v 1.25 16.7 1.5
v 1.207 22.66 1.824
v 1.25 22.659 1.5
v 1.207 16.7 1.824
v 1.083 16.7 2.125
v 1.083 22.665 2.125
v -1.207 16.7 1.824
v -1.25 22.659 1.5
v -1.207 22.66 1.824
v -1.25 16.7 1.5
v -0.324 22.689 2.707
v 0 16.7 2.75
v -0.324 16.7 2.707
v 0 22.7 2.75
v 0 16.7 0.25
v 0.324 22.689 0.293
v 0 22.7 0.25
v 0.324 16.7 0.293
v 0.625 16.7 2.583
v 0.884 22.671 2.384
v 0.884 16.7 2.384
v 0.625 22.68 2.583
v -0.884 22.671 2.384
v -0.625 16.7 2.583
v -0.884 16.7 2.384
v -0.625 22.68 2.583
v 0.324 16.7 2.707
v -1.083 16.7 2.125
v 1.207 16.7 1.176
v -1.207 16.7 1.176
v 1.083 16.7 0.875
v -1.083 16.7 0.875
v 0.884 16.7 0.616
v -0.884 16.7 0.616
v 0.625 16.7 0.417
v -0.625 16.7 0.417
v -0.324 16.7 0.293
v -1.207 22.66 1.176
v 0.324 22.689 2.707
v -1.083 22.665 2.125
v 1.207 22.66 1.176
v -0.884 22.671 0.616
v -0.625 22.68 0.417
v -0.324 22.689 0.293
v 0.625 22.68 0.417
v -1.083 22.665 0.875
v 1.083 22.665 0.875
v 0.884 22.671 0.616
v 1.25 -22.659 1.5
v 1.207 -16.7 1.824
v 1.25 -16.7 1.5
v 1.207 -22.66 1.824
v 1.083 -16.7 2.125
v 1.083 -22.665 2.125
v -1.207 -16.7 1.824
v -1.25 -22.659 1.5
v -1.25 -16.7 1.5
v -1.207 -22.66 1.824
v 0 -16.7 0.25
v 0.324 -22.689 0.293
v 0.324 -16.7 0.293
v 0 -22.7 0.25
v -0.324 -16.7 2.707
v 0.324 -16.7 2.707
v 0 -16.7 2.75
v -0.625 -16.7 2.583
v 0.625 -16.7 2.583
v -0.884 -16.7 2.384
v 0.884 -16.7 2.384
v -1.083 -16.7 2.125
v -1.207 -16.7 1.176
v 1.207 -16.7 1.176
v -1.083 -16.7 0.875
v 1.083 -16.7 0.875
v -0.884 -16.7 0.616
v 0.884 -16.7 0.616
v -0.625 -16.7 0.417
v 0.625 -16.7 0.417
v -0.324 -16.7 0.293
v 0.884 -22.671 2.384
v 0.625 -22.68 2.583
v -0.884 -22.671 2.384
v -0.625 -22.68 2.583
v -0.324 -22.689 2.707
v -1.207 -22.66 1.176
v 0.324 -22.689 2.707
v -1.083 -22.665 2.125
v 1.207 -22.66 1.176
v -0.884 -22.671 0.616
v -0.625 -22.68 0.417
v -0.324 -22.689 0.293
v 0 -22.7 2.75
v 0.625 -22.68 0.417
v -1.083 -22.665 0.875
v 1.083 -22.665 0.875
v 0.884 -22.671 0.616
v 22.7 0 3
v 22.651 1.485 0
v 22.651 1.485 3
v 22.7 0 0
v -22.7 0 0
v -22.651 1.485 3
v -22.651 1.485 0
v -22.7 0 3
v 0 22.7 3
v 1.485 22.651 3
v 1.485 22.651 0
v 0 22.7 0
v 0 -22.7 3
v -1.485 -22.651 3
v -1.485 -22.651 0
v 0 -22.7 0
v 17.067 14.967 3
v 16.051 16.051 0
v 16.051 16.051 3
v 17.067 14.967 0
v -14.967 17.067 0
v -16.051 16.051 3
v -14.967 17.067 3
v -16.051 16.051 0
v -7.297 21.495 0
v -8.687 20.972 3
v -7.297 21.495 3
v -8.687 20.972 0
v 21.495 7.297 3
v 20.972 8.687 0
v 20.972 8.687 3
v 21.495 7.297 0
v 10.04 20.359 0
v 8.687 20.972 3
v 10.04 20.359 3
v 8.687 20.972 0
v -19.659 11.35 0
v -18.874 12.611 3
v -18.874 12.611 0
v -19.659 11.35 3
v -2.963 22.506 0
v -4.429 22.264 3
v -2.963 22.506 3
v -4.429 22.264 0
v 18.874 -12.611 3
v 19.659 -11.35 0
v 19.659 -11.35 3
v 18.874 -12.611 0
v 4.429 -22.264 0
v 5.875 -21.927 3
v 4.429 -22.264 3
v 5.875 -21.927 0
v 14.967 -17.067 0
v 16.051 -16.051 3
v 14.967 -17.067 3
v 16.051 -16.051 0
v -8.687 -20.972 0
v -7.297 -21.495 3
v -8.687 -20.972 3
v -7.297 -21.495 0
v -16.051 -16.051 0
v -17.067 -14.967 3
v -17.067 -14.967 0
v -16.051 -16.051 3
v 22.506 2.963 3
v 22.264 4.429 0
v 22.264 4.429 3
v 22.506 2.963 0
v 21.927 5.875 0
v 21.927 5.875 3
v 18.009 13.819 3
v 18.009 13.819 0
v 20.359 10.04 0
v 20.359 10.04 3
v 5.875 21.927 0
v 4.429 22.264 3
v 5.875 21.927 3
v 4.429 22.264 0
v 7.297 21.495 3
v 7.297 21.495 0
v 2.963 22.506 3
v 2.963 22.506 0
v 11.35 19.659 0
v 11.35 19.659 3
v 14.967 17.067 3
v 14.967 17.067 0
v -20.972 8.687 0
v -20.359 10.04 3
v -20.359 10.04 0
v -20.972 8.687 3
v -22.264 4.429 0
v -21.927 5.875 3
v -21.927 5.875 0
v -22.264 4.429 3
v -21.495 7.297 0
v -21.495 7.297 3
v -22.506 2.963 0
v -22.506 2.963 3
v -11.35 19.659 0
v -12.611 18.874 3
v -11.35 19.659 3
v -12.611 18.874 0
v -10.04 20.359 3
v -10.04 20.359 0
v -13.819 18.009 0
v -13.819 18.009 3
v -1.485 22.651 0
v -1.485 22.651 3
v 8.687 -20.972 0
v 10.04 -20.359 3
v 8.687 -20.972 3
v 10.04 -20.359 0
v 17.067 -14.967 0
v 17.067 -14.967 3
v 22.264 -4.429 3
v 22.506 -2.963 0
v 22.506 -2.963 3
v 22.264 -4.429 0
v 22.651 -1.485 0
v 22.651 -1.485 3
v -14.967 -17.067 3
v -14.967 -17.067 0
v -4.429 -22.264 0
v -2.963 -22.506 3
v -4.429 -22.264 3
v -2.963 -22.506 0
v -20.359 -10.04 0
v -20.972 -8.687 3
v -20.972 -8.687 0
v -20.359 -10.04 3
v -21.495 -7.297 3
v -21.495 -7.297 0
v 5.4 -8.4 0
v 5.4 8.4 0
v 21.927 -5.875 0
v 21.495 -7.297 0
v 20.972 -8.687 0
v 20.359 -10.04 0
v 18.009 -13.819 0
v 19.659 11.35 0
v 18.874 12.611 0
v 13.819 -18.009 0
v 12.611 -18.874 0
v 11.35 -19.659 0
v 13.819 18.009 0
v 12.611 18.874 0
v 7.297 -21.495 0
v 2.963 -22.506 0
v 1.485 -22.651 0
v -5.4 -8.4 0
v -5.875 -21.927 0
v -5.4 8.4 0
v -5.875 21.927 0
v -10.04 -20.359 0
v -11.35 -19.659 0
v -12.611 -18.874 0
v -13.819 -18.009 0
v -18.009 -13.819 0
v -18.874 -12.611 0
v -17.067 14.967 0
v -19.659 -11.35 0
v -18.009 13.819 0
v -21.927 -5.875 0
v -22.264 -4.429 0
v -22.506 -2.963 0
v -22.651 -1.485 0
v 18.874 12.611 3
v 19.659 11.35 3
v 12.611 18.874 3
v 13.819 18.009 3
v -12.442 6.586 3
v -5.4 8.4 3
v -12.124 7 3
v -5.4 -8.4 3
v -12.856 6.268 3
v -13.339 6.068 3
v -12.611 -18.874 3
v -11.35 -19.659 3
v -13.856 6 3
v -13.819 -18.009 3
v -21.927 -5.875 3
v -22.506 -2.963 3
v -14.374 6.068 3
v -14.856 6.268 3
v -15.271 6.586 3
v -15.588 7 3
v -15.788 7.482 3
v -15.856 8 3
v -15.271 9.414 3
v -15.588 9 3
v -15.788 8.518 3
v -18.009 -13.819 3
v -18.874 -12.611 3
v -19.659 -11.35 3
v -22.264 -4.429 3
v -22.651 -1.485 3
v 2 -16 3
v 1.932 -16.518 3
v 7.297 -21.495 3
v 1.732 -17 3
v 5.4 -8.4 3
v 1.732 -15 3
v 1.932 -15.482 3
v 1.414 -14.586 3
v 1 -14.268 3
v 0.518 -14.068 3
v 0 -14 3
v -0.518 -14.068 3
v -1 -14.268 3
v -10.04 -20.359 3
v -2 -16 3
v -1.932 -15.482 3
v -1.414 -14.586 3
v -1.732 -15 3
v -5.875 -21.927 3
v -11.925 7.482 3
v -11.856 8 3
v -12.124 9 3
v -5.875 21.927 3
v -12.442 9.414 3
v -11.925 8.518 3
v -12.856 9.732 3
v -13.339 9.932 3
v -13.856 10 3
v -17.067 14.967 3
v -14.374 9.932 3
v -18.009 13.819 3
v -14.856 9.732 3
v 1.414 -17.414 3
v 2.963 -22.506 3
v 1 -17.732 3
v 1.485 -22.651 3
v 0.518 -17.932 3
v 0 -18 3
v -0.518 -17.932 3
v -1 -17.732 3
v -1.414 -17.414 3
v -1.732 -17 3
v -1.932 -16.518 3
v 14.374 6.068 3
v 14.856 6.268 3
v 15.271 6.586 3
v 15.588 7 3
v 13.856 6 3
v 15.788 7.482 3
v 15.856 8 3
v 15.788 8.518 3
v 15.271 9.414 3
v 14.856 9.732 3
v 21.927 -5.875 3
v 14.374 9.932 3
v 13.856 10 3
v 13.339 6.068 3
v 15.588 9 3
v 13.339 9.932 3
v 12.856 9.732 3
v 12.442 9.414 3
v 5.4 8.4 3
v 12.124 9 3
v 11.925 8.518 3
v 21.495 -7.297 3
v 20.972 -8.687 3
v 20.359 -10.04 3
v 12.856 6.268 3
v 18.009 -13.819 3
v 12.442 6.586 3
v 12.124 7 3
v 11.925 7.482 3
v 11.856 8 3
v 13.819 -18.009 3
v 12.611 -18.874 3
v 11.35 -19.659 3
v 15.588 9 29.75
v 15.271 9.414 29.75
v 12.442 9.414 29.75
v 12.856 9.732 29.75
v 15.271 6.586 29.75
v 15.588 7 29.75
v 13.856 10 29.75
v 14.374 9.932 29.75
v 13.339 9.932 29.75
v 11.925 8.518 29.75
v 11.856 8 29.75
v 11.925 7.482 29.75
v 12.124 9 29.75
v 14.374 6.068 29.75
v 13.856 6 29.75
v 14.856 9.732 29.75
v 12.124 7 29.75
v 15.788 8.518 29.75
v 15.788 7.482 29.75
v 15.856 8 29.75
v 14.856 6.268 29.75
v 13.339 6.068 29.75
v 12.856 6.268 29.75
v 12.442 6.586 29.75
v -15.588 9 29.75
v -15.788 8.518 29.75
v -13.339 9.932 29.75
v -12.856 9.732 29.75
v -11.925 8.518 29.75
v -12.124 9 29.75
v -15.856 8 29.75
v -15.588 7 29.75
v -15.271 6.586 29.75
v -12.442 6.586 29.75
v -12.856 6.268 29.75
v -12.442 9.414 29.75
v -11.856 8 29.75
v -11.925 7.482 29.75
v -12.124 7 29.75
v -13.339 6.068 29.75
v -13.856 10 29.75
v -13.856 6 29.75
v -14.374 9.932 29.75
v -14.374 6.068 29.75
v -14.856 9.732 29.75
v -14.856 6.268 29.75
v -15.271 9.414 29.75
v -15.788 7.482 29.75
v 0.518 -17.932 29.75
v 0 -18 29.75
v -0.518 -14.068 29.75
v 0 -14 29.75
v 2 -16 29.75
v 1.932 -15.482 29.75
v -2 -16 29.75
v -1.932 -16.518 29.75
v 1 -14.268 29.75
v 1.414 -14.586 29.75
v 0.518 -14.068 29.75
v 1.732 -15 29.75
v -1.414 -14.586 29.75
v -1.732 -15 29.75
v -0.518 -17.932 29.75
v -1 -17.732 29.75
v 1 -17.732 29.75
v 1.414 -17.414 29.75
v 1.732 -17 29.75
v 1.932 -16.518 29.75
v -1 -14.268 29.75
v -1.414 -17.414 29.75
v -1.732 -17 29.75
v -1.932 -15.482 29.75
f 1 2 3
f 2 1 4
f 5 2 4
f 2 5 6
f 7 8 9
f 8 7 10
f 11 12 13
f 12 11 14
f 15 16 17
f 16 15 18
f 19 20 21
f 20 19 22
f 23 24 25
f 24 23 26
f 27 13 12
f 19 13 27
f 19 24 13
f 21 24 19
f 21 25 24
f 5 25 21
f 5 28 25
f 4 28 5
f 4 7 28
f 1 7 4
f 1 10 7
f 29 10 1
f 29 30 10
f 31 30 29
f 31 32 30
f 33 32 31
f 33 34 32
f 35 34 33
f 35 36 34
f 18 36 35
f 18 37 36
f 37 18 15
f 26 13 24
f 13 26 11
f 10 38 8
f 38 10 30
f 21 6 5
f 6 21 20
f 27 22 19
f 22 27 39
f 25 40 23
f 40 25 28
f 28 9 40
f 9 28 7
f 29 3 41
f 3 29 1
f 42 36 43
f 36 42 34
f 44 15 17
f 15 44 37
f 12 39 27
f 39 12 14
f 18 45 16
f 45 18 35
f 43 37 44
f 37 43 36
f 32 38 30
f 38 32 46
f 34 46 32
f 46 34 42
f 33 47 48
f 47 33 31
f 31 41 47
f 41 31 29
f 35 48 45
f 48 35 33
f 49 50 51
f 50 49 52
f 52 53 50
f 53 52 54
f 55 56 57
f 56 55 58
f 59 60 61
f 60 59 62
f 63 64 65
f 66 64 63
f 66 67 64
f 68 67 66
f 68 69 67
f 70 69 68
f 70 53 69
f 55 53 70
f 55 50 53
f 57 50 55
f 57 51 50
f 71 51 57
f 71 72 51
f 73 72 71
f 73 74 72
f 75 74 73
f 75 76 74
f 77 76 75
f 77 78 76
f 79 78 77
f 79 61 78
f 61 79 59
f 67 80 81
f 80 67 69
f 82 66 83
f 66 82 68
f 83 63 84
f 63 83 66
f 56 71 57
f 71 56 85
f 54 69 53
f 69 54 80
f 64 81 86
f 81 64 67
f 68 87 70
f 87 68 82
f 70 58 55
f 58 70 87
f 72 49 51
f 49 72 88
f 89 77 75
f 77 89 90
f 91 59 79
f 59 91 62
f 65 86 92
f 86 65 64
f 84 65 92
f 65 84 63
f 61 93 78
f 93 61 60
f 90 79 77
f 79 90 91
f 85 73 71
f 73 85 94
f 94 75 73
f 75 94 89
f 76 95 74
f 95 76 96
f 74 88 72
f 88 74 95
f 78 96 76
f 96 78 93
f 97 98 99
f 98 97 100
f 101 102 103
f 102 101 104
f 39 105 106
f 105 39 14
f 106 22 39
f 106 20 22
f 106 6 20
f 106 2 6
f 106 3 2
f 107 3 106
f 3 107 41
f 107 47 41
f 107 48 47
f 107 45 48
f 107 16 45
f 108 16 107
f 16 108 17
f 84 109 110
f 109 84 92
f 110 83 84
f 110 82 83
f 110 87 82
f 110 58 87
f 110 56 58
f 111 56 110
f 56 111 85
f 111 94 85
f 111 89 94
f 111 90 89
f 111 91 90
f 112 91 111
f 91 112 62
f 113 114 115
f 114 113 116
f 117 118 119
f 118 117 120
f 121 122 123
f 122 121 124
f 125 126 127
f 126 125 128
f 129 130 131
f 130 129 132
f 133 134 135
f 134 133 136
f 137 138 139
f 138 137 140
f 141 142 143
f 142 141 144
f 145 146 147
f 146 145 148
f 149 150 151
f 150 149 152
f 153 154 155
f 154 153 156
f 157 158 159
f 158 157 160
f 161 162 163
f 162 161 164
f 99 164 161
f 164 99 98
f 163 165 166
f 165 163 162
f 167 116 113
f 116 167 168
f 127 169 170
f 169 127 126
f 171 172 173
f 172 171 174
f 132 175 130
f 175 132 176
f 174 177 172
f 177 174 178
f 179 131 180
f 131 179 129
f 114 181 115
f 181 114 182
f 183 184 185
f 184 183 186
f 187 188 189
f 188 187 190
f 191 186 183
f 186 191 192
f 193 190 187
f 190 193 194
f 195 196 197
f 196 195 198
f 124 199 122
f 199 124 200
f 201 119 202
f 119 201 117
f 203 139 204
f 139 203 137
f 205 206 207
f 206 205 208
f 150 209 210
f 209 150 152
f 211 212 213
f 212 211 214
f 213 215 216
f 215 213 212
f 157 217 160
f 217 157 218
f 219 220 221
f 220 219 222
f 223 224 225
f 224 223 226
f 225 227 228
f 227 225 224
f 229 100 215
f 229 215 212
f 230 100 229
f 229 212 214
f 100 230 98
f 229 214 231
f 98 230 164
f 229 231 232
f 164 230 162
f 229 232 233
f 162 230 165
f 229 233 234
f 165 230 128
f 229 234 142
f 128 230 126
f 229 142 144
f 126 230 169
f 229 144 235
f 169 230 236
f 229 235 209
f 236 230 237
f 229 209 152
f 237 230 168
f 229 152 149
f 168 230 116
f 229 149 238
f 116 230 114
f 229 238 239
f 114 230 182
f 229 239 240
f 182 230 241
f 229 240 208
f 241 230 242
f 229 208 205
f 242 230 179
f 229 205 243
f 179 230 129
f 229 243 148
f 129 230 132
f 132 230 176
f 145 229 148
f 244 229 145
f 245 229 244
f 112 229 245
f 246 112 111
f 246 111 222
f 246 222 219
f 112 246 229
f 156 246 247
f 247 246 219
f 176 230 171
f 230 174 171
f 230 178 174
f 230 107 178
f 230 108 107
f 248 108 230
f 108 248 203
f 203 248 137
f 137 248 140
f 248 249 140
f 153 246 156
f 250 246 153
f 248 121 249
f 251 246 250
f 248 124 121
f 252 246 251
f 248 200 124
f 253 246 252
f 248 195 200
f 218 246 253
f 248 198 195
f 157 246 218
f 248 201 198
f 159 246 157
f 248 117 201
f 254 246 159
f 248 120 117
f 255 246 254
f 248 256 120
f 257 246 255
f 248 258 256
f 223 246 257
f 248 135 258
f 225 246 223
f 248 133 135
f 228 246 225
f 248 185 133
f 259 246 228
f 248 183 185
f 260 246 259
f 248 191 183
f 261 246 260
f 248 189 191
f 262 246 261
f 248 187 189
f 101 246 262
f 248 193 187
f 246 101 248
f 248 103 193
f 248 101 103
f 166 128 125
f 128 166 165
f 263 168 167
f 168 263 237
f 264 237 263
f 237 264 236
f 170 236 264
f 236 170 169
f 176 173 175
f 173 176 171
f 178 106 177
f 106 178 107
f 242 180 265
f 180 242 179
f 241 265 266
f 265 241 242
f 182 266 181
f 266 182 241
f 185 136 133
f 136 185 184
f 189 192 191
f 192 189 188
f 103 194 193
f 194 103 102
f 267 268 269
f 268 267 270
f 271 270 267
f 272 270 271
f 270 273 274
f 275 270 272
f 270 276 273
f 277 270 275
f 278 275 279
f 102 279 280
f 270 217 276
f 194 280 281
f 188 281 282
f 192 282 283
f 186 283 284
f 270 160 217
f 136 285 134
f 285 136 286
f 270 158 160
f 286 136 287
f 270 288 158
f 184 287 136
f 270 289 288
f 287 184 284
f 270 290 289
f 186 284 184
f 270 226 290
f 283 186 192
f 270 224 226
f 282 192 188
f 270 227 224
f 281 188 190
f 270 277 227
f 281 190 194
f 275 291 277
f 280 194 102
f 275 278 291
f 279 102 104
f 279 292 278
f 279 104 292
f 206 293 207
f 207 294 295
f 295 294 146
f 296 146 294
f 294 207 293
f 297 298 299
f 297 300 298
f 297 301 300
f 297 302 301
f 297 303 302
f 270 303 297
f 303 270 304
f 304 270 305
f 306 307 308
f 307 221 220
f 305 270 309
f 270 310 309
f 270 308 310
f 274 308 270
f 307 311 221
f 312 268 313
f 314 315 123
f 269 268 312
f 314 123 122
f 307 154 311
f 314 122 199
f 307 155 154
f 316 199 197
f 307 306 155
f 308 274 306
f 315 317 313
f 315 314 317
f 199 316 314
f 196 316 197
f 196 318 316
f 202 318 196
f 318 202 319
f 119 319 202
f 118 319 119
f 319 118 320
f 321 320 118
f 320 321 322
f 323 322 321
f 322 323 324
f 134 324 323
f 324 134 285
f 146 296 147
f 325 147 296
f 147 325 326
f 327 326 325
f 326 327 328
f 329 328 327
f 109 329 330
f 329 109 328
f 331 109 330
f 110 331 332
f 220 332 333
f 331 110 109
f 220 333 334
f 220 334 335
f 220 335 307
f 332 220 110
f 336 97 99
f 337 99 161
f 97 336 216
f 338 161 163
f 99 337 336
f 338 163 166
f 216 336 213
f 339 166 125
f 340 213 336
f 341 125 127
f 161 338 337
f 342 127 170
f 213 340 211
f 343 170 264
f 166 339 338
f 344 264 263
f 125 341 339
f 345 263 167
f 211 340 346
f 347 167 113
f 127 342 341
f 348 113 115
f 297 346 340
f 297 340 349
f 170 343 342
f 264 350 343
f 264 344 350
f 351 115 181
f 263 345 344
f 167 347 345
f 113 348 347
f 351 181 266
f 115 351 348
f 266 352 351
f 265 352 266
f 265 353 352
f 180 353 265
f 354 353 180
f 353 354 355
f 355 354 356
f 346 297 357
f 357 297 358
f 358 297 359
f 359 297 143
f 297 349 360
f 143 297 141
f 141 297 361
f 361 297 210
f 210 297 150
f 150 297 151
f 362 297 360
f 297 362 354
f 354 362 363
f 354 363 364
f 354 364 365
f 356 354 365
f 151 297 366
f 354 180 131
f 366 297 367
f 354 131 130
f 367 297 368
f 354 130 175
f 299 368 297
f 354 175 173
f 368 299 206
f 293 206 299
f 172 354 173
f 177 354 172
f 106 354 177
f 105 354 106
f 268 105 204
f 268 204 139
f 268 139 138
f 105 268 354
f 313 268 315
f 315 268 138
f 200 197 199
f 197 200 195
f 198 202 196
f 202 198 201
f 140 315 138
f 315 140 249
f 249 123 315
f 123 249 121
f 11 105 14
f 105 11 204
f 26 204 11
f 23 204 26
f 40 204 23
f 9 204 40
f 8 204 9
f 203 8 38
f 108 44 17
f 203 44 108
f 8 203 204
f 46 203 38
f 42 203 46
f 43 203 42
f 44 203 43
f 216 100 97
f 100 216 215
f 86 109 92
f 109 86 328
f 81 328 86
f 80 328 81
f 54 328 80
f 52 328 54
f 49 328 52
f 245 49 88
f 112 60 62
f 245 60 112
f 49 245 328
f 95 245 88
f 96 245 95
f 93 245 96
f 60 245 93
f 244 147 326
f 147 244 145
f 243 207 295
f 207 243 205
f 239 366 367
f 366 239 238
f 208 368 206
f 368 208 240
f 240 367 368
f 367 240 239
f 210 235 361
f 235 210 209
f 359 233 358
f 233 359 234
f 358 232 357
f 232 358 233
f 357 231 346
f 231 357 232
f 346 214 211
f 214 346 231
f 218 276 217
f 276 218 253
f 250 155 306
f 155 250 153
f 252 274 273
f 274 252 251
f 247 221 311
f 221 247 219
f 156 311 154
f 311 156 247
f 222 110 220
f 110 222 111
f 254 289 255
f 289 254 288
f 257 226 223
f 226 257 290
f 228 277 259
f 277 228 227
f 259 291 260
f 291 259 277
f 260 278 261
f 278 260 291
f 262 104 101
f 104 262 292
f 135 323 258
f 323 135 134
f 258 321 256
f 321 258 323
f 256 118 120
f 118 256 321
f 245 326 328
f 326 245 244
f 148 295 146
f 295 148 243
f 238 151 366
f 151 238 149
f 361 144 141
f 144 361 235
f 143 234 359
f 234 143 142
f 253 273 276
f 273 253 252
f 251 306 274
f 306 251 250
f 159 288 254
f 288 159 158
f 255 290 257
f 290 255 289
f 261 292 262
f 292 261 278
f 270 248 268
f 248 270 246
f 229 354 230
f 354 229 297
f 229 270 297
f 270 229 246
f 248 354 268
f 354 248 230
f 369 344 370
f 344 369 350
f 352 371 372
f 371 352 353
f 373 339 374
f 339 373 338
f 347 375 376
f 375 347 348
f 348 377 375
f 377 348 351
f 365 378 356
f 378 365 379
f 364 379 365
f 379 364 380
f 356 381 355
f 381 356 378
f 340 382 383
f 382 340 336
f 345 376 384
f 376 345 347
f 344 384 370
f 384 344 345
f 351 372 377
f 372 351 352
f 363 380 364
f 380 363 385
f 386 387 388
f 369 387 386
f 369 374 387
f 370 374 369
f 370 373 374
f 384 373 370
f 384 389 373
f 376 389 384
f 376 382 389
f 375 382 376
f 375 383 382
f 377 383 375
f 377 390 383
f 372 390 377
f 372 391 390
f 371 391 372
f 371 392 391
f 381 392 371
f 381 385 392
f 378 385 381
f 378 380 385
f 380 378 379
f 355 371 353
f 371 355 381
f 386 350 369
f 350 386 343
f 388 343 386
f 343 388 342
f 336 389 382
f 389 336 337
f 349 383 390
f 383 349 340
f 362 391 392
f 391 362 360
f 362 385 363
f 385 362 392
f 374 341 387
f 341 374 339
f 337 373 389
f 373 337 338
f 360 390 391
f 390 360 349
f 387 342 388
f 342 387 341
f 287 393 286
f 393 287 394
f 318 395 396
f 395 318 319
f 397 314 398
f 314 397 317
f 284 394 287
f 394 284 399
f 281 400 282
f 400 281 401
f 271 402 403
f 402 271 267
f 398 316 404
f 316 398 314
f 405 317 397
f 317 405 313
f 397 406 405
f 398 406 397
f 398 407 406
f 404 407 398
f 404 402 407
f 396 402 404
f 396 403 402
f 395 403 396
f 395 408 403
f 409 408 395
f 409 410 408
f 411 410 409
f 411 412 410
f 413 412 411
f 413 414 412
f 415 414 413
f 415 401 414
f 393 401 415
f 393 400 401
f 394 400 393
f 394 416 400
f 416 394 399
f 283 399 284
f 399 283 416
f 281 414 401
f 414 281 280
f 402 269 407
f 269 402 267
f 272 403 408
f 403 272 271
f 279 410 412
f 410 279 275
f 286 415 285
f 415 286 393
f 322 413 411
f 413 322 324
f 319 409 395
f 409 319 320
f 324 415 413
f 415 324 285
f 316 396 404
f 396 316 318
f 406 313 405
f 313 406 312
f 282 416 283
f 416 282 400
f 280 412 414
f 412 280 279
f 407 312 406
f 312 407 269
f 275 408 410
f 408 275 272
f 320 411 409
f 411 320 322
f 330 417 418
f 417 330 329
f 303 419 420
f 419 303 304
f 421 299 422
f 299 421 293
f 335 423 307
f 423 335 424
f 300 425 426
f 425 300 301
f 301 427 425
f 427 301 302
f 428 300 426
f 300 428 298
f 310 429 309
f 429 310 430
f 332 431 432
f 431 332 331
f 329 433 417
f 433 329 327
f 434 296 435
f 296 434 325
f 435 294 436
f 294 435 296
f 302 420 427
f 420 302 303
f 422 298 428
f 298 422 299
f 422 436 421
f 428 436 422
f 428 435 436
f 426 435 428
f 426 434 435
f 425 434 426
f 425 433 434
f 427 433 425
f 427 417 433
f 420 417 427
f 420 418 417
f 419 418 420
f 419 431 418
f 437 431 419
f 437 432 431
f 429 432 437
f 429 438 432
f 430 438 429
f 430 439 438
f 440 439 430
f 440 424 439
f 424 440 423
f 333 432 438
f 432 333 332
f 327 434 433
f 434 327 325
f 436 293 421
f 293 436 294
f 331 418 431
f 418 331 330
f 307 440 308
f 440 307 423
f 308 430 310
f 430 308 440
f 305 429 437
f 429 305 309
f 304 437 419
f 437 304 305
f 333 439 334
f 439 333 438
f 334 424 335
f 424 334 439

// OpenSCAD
// file: ../components/light_box_002.scad
// ============================================================================
// light_box_002.scad — Hộp đèn nền "LED XUÔI" (G1) — đoạn DƯỚI của vỏ liền (G2)
// ----------------------------------------------------------------------------
// KHÁC _001: NÚT BỊT KHE nâng cấp thành CỘT ĐỠ KHAY chữ L (thay vòng đỡ liền vỏ
// của tube_body_001 — vòng đó chặn đường luồn khay OD44 từ đáy, đã bỏ ở _002):
//  - Thân nút trượt trong khe dọc ±X như cũ (bịt sáng), kéo dài từ vành đáy
//    (z=−61.5, chân đứng CÙNG MẶT BÀN với đế) lên z=−1.2 (chừa 0.2 dưới ngạnh/hộp loe).
//  - GỜ NGANG thò vào lòng ống (sâu 1.7 → r21.4): mặt trên tại z=−6.5 ĐỠ ĐÁY VÁY
//    KHAY (vành r21.35..22). Không lấn cột sáng Ø40 (r20); màng Ø42 (r21) lọt qua.
//  - Tải: khay + nước (~40g) → 2 gờ ±X → thân nút → mặt bàn. Cắm ma sát; có thể
//    chấm keo cố định vĩnh viễn (nút rẻ, in lại dễ).
// THỨ TỰ LẮP TỪ ĐÁY (bắt buộc): (1) khay luồn lên (ngạnh theo khe dọc, giữ tay);
// (2) 2 nút bịt trượt vào khe từ dưới → gờ đỡ khay, thả tay; (3) vách LED + module
// + màng khuếch tán (đặt sẵn trên 3 cột) đưa lên, bắt 2 ốc M3 ±Y; xong.
//
// Hệ toạ độ chung. Phạm vi: z = −61.5 (vành đáy = CHÂN ĐẾ) .. −8 (nối tube_body).
// Xếp lớp từ trên xuống:
//   z −6.5      : đáy khay tì lên GỜ 2 nút bịt (vòng đỡ liền vỏ ĐÃ BỎ)
//   z −12..−8   : MÀNG KHUẾCH TÁN xếp lớp 0–4mm (giấy can/mica mờ, Ø42) ĐẶT TRÊN
//                 3 CỘT từ vách — thêm/bớt lớp để chỉnh độ tán
//   z −20..−12  : BUỒNG TRỘN 8mm (khử hotspot nguồn điểm)
//   z = −20     : ĐẦU LED của module (hướng THẲNG LÊN — "LED xuôi", KHÔNG bounce)
//   z −38.75    : mặt VÁCH ĐỠ RỜI (G5): đĩa Ø45.4 thả vào lòng ống, 2 ỐC M3 XUYÊN
//                 NGANG thành ống tại ±Y (tránh 2 khe dọc ±X) vào mép vách;
//                 module xỏ qua LỖ GIỮA vách (tiết diện +0.4 — cắm ma sát)
//   z −57.5     : đáy module (nửa pin nằm dưới vách)
//   z −61.5     : vành đáy ống = chân đế; HỞ GIỮA để thao tác/thay pin từ dưới
// Mặt trong khoang đèn: TRẮNG mờ (sơn/dán trắng — thân in đen).
// ============================================================================
include <../constants.scad>

EPS = 0.05;
shelf_d = tube_id - 2*shelf_clr;   // Ø45.4

// ---------------- Thân đoạn dưới (in liền với tube_body thành 1 khối) ----------------
module light_box_body() {
    color(col_plastic_w) difference() {
        translate([0, 0, z_housing_bot])
            cylinder(d = tube_od, h = z_seat_bot - z_housing_bot, $fn = 120);
        // Lòng ống
        translate([0, 0, z_housing_bot - EPS])
            cylinder(d = tube_id, h = z_seat_bot - z_housing_bot + 2*EPS, $fn = 120);
        // 2 khe dọc tiếp nối (mở từ vành đáy lên hết đoạn này)
        for (p = [[1, slot_w_out], [-1, slot_w_in]])
            translate([p[0] * (tube_id/2 + tube_wall/2), 0, (z_seat_bot + z_housing_bot)/2])
                cube([tube_wall + 2, p[1], z_seat_bot - z_housing_bot + 2*EPS], center = true);
        // 2 lỗ M3 ngang ±Y bắt vách đỡ (tự-ren vào mép vách)
        for (sy = [1, -1])
            translate([0, sy * (tube_id/2 + tube_wall/2), shelf_screw_z])
                rotate([90, 0, 0])
                    cylinder(d = mount_hole_lid_d, h = tube_wall + 2, center = true, $fn = 24);
    }
}

// ---------------- Vách đỡ RỜI (G5) — chi tiết in riêng ----------------
module led_shelf() {
    color(col_plastic_w) {
        difference() {
            translate([0, 0, z_shelf_top - shelf_t])
                cylinder(d = shelf_d, h = shelf_t, $fn = 96);
            // Lỗ giữa xỏ module (fit ma sát +0.4)
            translate([-(led_mod_w + 2*shelf_hole_clr)/2, -(led_mod_d + 2*shelf_hole_clr)/2,
                       z_shelf_top - shelf_t - EPS])
                cube([led_mod_w + 2*shelf_hole_clr, led_mod_d + 2*shelf_hole_clr, shelf_t + 2*EPS]);
            // 2 lỗ mồi M3 ở mép (±Y) — ốc xuyên thành ống tự-ren vào đây
            for (sy = [1, -1])
                translate([0, sy * shelf_d/2, shelf_screw_z])
                    rotate([90, 0, 0])
                        cylinder(d = 2.5, h = 12, center = true, $fn = 24);
        }
        // 3 cột đỡ màng khuếch tán (lên tới z_diff_bot)
        for (a = [30, 150, 270])
            rotate([0, 0, a])
                translate([16, 0, z_shelf_top])
                    cylinder(d = 4, h = z_diff_bot - z_shelf_top, $fn = 24);
    }
}

// ---------------- Màng khuếch tán (mock — giấy can/mica mờ, MUA/CẮT) ----------------
module diffuser_stack(layers = 2, layer_t = 1.0) {
    color(col_diffuser)
        for (i = [0:layers-1])
            translate([0, 0, z_diff_top - (i + 1) * layer_t - i * 0.2])
                cylinder(d = bl_diff_d, h = layer_t, $fn = 96);
}

// ---------------- Nút bịt khe KIÊM CỘT ĐỠ KHAY (in riêng, luồn từ đáy SAU khay) ---
// Gốc cục bộ: x=0 = mặt TRONG thân nút (phía lòng ống, +x hướng ra ngoài),
// z=0 = chân nút (= vành đáy vỏ z_housing_bot khi lắp). Chữ L: thân trong khe
// + gờ đỡ thò vào lòng ống, mặt trên gờ = z_tray_bot (đáy váy khay tì lên).
// Bịt sáng: thân che khe từ vành đáy tới z=−1.2 — kín toàn bộ khoang đèn (<−8).
module slot_plug(w = slot_w_out) {
    plug_h  = plug_top_z - z_housing_bot;        // 60.3: chân → sát dưới ngạnh
    tab_top = z_tray_bot - z_housing_bot;        // 55.0: mặt trên gờ đỡ (cục bộ)
    color(col_plastic) union() {
        // Thân trượt trong khe (dày = thành − 0.2)
        cube([tube_wall - 0.2, w - 2*tol, plug_h]);
        // Gờ đỡ khay: thò vào lòng ống plug_tab_d, chồng lấn 1mm vào thân
        // (giao dương — tránh mặt trùng gây non-manifold)
        translate([-plug_tab_d, 0, tab_top - plug_tab_h])
            cube([plug_tab_d + 1, w - 2*tol, plug_tab_h]);
    }
}

// ---------------- Xem lẻ ----------------
light_box_body();
led_shelf();
diffuser_stack();
// 2 nút bịt kiêm cột đỡ đặt đúng vị trí (+X thật, −X mirror)
translate([tube_id/2 + 0.1, -(slot_w_out - 2*tol)/2, z_housing_bot]) slot_plug(slot_w_out);
mirror([1, 0, 0])
    translate([tube_id/2 + 0.1, -(slot_w_in - 2*tol)/2, z_housing_bot]) slot_plug(slot_w_in);
// Module LED đặt đúng vị trí (ghost)
%translate([0, 0, z_led_tip]) rotate([0, 0, 90])
    translate([0, 0, 0]) {
        translate([-led_mod_w/2, -led_mod_d/2, -led_mod_h]) cube([led_mod_w, led_mod_d, led_mod_h]);
    }
// main file
// print_led_shelf.scad — Vách đỡ RỜI module LED (G5) + 3 cột đỡ màng (1 chi tiết in).
// In: mặt vách xuống bàn, cột hướng lên (không support). Lỗ giữa +0.4 cắm ma sát.
include <../constants.scad>
use <../components/light_box_002.scad>

// Hạ về z=0 để in (mặt dưới vách chạm bàn)
translate([0, 0, -(z_shelf_top - shelf_t)]) led_shelf();
